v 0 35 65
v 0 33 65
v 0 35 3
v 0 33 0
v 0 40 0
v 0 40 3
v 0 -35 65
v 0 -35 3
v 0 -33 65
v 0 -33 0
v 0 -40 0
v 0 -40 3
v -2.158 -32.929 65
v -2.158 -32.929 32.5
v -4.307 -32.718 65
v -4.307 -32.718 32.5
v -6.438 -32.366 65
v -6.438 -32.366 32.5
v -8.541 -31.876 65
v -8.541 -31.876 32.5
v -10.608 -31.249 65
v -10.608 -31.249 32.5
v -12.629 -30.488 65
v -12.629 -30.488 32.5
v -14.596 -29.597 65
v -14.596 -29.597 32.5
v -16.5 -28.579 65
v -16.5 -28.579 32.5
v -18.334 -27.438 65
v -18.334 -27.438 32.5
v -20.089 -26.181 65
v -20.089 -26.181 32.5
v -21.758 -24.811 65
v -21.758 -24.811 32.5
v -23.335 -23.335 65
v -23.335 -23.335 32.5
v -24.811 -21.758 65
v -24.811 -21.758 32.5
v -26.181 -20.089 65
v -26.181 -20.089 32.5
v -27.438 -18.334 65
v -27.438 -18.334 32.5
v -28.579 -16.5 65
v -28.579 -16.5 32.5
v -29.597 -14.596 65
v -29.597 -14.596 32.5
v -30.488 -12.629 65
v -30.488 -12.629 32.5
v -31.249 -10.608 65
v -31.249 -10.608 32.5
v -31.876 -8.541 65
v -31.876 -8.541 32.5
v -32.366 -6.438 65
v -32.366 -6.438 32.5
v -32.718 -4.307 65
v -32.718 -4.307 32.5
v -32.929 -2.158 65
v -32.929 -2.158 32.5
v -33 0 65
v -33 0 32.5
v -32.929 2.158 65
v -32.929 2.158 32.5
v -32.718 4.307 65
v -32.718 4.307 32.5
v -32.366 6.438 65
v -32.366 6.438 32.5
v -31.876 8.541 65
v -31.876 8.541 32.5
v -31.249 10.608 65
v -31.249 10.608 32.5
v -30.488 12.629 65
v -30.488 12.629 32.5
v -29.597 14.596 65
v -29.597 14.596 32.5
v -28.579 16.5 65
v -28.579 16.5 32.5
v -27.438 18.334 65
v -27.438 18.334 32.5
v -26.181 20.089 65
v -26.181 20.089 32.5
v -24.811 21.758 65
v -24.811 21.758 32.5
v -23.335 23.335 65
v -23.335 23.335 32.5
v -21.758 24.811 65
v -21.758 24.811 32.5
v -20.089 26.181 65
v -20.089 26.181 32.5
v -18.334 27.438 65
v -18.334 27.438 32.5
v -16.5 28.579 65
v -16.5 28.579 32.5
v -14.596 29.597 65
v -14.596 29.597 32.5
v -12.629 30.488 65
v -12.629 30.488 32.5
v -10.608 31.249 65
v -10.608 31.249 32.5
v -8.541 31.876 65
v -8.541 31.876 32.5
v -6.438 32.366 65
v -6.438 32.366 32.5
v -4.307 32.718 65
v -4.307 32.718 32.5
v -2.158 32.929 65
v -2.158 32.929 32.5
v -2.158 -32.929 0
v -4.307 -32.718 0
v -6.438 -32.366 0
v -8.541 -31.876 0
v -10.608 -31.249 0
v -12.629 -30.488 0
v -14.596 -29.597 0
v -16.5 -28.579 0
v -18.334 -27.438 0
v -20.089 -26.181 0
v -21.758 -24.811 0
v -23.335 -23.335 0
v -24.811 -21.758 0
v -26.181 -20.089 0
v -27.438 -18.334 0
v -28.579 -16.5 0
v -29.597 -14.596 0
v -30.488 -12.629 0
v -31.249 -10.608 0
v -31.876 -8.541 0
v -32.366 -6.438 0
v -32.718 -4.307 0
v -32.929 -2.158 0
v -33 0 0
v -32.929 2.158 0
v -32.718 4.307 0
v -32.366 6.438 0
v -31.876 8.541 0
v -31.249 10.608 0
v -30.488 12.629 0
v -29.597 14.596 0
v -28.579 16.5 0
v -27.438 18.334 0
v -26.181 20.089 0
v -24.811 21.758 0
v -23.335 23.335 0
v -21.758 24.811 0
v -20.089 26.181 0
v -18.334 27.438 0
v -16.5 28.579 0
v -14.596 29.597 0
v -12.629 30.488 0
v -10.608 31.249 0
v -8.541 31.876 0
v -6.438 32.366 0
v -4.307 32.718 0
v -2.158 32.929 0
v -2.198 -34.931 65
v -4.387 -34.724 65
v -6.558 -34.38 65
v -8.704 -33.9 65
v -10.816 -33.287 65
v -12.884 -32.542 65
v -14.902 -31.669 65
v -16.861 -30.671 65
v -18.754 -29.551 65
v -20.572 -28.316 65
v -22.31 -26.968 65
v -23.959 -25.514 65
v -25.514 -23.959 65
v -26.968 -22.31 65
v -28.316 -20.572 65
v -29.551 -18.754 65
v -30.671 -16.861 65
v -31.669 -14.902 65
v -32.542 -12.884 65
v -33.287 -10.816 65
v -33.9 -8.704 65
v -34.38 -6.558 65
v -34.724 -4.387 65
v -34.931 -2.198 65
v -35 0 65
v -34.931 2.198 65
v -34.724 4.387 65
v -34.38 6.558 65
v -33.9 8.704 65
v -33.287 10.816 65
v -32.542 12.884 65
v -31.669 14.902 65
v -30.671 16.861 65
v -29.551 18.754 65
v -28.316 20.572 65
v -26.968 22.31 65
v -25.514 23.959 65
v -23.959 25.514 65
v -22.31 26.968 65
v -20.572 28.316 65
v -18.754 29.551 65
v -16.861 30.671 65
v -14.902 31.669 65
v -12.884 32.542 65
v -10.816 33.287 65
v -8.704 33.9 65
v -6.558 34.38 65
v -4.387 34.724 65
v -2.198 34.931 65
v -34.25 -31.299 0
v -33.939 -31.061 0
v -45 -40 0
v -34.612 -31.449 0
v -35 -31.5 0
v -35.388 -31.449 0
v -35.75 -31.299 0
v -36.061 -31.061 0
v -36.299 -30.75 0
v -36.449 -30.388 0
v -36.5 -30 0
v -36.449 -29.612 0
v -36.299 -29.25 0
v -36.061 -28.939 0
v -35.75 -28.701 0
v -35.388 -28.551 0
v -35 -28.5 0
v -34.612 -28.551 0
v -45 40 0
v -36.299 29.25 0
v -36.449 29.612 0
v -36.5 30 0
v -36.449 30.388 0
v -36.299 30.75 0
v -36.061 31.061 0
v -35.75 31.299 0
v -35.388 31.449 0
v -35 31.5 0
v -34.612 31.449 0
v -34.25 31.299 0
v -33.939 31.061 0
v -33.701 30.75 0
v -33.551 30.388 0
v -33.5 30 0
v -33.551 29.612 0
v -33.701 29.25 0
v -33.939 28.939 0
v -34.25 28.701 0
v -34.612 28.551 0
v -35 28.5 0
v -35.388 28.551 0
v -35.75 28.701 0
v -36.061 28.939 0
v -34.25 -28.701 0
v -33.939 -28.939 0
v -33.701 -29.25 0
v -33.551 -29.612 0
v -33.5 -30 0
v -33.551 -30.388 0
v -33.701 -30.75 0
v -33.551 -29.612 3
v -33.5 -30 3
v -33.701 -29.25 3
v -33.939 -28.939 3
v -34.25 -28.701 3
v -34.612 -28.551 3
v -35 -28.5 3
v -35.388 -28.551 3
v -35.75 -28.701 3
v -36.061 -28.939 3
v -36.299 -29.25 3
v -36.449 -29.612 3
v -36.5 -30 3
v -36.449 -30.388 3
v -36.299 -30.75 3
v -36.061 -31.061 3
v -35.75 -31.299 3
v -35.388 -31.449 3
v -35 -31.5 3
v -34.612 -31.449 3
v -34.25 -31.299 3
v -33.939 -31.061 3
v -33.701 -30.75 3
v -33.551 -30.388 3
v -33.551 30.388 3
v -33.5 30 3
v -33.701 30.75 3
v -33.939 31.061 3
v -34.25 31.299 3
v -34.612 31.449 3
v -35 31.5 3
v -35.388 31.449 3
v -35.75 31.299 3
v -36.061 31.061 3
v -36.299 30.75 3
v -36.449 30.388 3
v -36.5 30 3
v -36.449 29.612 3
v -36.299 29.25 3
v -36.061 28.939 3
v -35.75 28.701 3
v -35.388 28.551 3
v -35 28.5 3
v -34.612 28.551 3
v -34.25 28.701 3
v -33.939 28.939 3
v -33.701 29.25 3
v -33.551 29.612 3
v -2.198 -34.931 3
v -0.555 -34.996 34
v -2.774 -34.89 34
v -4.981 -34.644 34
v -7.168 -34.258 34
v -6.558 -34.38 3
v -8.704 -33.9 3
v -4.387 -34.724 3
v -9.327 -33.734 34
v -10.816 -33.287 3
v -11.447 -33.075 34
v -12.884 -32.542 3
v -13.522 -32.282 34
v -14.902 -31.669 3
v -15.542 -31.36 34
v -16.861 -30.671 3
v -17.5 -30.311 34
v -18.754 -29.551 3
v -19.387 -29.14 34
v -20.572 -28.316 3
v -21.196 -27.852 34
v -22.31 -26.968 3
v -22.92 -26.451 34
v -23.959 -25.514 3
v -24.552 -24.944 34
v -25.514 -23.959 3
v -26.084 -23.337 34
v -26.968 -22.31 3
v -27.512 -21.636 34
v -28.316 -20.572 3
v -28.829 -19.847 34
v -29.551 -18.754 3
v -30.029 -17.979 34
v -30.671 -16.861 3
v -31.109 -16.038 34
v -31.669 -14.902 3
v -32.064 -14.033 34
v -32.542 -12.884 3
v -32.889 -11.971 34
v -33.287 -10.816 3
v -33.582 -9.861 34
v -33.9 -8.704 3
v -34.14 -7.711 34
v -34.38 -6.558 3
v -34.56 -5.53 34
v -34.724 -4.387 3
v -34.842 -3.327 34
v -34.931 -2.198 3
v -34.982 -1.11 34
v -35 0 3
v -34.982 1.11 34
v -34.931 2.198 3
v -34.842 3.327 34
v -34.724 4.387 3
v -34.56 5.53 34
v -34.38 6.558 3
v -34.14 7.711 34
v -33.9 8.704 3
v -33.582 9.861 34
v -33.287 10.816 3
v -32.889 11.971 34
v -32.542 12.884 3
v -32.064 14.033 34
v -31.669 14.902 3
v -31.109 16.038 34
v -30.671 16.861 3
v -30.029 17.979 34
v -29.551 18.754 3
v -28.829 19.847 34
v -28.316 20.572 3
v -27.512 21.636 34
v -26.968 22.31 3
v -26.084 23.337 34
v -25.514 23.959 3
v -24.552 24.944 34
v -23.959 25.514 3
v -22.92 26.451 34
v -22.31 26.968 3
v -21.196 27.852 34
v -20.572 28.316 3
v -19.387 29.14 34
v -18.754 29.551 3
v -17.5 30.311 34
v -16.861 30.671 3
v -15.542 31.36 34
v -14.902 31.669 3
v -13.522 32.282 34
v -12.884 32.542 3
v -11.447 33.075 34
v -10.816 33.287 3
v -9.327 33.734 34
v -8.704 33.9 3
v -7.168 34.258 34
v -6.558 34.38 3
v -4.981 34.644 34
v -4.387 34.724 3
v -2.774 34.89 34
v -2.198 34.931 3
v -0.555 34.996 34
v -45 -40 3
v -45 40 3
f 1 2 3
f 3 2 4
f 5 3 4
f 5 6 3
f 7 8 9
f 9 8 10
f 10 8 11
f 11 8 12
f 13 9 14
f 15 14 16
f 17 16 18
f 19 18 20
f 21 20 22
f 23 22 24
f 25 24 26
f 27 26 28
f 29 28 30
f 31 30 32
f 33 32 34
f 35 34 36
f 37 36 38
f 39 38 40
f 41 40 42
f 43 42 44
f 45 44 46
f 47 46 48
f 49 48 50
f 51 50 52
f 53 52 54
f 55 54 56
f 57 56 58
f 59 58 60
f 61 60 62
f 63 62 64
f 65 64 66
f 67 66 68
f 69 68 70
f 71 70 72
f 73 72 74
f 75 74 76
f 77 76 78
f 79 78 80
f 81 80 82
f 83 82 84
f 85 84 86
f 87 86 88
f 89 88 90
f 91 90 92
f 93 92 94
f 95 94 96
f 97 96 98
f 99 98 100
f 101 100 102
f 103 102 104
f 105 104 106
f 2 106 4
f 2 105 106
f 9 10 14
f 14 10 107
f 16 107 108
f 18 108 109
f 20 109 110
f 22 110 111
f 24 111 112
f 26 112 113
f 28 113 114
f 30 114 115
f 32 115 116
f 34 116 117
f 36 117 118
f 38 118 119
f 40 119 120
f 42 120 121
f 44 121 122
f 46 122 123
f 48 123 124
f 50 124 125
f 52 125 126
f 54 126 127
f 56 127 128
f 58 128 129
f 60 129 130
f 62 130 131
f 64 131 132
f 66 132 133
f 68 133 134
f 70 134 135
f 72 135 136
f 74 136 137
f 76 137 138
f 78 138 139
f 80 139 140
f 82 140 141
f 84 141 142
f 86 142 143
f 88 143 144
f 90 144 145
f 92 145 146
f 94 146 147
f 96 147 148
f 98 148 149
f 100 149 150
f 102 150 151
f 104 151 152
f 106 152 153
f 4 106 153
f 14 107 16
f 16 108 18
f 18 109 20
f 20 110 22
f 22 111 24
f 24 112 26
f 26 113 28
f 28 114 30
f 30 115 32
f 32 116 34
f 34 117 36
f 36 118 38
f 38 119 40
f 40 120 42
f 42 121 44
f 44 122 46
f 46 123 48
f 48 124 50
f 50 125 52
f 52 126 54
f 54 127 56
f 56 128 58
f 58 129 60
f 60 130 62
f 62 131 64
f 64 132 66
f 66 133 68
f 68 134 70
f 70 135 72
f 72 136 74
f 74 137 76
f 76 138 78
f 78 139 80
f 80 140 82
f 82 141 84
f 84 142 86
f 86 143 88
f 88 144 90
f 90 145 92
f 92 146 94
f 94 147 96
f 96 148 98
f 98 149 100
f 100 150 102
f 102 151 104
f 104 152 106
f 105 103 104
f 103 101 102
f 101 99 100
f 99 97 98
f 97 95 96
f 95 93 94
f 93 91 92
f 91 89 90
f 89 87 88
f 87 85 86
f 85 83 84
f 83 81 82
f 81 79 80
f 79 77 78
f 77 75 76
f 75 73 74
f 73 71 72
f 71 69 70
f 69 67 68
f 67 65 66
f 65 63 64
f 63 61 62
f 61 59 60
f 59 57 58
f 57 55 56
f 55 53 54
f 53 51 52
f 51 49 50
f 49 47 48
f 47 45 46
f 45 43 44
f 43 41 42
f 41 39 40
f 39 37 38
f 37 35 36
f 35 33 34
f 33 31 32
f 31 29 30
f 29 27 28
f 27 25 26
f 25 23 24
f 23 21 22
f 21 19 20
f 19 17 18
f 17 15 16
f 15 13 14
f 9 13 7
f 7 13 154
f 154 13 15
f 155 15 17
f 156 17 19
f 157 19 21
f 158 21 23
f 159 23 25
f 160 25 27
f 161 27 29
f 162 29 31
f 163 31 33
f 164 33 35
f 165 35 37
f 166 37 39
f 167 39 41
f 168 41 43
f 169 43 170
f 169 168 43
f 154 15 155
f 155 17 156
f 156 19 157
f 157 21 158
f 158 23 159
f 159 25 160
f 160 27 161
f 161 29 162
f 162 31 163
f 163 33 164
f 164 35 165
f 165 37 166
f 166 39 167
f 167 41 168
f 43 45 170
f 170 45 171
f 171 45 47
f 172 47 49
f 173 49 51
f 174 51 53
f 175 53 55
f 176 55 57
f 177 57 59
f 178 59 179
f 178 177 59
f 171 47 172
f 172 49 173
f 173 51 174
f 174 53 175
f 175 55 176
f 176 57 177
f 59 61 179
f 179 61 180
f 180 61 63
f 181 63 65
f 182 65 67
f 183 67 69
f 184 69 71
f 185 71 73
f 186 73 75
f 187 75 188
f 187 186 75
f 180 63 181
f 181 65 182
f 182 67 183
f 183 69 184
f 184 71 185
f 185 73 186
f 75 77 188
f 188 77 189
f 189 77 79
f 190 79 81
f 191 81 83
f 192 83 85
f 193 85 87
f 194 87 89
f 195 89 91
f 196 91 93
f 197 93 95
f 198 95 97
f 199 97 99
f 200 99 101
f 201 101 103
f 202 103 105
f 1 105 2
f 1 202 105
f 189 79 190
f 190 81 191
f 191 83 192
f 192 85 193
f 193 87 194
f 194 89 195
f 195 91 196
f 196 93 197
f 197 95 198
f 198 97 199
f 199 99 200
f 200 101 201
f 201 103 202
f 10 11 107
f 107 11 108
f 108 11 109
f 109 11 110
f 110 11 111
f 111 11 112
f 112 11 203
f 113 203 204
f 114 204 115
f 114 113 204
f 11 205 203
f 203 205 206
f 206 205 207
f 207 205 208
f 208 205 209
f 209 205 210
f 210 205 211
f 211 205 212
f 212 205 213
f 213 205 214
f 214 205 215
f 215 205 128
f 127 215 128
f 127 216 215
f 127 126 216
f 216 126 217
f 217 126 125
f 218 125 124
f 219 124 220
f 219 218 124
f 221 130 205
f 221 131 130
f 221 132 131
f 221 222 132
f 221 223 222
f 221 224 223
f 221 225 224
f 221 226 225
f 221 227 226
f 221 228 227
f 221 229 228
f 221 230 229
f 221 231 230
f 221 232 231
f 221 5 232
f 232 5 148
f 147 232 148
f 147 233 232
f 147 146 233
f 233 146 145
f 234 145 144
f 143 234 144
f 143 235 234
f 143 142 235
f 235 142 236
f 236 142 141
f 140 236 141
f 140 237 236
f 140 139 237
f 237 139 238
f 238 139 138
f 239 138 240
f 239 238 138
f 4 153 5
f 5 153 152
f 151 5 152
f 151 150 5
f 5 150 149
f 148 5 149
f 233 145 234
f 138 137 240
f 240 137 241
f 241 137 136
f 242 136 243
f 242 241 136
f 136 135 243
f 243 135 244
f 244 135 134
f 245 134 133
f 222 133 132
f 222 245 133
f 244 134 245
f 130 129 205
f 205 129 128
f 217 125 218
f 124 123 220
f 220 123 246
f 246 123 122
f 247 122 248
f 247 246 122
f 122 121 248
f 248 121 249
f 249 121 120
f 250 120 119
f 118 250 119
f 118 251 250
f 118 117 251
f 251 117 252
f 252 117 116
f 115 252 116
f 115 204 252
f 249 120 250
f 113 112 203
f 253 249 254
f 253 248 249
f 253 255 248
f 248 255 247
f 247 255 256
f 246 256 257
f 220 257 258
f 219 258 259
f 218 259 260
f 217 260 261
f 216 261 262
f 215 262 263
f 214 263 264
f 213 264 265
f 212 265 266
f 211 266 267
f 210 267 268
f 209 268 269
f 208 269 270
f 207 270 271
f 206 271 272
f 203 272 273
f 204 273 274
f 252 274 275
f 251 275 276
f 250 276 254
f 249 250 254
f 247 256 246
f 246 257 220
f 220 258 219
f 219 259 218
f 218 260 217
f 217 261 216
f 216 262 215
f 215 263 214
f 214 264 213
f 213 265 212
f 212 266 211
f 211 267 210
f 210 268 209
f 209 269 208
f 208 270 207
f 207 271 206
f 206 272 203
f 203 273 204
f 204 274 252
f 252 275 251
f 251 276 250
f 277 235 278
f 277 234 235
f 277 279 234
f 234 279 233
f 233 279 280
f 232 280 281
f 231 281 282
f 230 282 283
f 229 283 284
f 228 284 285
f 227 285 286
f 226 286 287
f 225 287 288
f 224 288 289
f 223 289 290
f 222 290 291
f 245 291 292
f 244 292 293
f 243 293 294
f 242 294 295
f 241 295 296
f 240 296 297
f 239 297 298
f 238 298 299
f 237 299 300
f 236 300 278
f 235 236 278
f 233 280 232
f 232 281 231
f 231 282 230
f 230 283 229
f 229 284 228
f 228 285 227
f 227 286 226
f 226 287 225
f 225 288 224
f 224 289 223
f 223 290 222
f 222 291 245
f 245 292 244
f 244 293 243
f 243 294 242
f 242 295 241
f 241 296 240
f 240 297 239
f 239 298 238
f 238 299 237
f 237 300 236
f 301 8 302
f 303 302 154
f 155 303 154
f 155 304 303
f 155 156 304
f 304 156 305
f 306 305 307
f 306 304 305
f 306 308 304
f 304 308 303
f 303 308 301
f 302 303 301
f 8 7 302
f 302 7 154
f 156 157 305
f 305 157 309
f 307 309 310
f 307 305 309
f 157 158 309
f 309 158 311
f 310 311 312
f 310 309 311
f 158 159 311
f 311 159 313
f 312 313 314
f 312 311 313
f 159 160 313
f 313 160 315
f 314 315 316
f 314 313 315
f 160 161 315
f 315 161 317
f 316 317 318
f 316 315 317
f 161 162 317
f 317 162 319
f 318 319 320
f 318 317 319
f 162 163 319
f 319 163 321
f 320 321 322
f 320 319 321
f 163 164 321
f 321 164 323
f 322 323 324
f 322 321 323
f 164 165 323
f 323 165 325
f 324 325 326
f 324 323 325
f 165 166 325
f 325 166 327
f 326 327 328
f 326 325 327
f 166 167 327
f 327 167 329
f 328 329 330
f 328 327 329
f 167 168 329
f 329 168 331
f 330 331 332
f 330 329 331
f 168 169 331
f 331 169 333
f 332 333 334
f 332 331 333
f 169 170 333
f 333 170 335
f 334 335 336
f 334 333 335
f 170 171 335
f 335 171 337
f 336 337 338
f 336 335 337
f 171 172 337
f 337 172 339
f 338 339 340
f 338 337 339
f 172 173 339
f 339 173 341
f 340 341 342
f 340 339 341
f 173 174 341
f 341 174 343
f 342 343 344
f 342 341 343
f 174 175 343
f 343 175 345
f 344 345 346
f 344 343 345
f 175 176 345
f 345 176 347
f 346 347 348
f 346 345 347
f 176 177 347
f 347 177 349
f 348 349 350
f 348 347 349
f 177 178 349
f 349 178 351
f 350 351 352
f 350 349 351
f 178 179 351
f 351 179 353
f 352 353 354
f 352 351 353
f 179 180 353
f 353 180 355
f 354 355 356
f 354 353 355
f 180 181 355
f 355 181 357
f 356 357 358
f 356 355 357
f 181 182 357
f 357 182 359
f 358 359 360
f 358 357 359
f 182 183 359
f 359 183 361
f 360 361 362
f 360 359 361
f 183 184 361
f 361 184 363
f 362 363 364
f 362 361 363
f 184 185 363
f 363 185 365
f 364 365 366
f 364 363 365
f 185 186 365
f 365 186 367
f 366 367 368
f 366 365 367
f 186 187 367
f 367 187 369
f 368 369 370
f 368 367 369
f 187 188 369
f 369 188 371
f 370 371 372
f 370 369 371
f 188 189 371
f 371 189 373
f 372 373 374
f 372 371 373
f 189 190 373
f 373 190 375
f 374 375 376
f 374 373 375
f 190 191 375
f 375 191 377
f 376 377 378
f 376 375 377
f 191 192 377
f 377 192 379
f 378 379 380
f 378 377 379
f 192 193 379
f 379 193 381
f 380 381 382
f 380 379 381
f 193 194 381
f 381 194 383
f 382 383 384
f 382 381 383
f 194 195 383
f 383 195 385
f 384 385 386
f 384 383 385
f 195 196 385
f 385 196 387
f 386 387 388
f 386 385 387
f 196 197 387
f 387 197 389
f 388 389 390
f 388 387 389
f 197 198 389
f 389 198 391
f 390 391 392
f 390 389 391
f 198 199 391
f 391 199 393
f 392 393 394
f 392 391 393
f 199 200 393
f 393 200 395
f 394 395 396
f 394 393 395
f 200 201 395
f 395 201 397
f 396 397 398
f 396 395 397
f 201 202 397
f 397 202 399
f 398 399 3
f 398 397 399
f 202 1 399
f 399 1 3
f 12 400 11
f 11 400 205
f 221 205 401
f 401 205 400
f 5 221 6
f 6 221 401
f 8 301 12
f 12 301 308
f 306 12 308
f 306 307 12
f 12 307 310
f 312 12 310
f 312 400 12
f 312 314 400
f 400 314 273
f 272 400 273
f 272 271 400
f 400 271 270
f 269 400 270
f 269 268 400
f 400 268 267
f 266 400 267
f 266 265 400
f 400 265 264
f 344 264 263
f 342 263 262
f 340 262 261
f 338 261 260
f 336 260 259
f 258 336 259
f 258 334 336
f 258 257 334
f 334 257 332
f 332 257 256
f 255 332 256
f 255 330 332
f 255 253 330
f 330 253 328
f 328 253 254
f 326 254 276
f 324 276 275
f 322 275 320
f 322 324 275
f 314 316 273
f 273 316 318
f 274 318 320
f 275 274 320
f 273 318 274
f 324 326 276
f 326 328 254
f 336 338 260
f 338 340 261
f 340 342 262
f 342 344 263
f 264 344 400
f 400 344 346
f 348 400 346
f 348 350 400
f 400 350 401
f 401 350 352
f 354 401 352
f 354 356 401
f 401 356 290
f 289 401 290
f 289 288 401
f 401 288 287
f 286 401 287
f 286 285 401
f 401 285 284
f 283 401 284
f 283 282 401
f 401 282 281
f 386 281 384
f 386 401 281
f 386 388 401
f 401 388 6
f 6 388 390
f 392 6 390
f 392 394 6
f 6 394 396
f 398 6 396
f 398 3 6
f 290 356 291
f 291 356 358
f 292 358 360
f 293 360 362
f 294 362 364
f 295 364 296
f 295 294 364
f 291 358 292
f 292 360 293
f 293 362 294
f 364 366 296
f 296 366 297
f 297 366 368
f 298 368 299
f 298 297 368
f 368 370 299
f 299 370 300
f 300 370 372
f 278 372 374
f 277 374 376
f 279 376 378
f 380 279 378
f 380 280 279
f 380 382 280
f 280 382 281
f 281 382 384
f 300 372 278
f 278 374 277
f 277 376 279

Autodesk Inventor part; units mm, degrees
ref_plane "YZ Plane" through (0, 0, 0) normal (1, 0, 0) x (0, 1, 0)
ref_plane "XZ Plane" through (0, 0, 0) normal (0, 1, 0) x (-1, 0, 0)
ref_plane "XY Plane" through (0, 0, 0) normal (0, 0, 1) x (1, 0, 0)
sketch "スケッチ1" plane through (0, 0, 0) normal (0, 0, 1) x (1, 0, 0)
  circle A0 centre (0, 0) radius 35
  circle A1 centre (0, 0) radius 33
  line L0 (-45, 40) -> (45, 40)
  line L1 (45, 40) -> (45, -40)
  line L2 (45, -40) -> (-45, -40)
  line L3 (-45, -40) -> (-45, 40)
  line L4 (-45, 40) -> (45, -40) construction
  line L5 (45, 40) -> (-45, -40) construction
  dimension "d0" = 70
  dimension "d1" = 66
  dimension "d2" = 90
  dimension "d3" = 80
extrude "押し出し1" add sketch "スケッチ1" along normal blind 3 contours L0 L1 L2 L3
sketch "スケッチ2" plane through (0, 0, 3) normal (0, 0, 1) x (1, 0, 0)
  circle A0 centre (0, 0) radius 35 projected
  circle A1 centre (0, 0) radius 35
  circle A2 centre (0, 0) radius 33
  dimension "d6" = 66
extrude "押し出し2" add sketch "スケッチ2" along normal blind 3 and the other way blind 3
sketch "スケッチ3" plane through (0, 0, 6) normal (0, 0, 1) x (1, 0, 0)
  circle A0 centre (0, 0) radius 33 projected
  circle A1 centre (0, 0) radius 35 projected
extrude "押し出し3" add sketch "スケッチ3" along normal blind 59
sketch "スケッチ4" plane through (0, 0, 65) normal (0, 0, 1) x (1, 0, 0)
  circle A0 centre (0, 0) radius 33 projected
  circle A1 centre (0, 0) radius 35 projected
sketch "スケッチ5" plane through (0, 0, 0) normal (0, 0, -1) x (-1, 0, 0)
  line L0 (-45, 40) -> (-35, 40)
  line L1 (-35, 40) -> (-35, 30)
  line L2 (-35, 30) -> (-45, 30)
  line L3 (-45, 30) -> (-45, 40)
  line L4 (-45, -40) -> (-35, -40)
  line L5 (-35, -40) -> (-35, -30)
  line L6 (-35, -30) -> (-45, -30)
  line L7 (-45, -30) -> (-45, -40)
  line L8 (45, -40) -> (35, -40)
  line L9 (35, -40) -> (35, -30)
  line L10 (35, -30) -> (45, -30)
  line L11 (45, -30) -> (45, -40)
  line L12 (45, 40) -> (35, 40)
  line L13 (35, 40) -> (35, 30)
  line L14 (35, 30) -> (45, 30)
  line L15 (45, 30) -> (45, 40)
  dimension "d13" = 10
  dimension "d14" = 10
  dimension "d15" = 10
  dimension "d16" = 10
  dimension "d17" = 10
  dimension "d18" = 10
  dimension "d19" = 10
hole "穴1" at (35, 30, 0) at (-35, 30, 0) at (-35, -30, 0) at (35, -30, 0) direction (0, 0, 1) diameter 3 depth 8 tip angle 118
sketch "スケッチ6" plane through (0, 0, 0) normal (0, 0, -1) x (-1, 0, 0)
  circle A0 centre (-35, 30) radius 1.5 projected
  circle A1 centre (-35, -30) radius 1.5 projected
  line L0 (-45, -40) -> (45, -40) projected
  line L1 (-45, 40) -> (0, 40)
  line L2 (0, 40) -> (0, -40)
  line L3 (0, -40) -> (-45, -40)
  line L4 (-45, -40) -> (-45, 40)
extrude "押し出し4" cut sketch "スケッチ6" against normal blind 65
properties part number "知能ロボコン発射口ver2.5"
